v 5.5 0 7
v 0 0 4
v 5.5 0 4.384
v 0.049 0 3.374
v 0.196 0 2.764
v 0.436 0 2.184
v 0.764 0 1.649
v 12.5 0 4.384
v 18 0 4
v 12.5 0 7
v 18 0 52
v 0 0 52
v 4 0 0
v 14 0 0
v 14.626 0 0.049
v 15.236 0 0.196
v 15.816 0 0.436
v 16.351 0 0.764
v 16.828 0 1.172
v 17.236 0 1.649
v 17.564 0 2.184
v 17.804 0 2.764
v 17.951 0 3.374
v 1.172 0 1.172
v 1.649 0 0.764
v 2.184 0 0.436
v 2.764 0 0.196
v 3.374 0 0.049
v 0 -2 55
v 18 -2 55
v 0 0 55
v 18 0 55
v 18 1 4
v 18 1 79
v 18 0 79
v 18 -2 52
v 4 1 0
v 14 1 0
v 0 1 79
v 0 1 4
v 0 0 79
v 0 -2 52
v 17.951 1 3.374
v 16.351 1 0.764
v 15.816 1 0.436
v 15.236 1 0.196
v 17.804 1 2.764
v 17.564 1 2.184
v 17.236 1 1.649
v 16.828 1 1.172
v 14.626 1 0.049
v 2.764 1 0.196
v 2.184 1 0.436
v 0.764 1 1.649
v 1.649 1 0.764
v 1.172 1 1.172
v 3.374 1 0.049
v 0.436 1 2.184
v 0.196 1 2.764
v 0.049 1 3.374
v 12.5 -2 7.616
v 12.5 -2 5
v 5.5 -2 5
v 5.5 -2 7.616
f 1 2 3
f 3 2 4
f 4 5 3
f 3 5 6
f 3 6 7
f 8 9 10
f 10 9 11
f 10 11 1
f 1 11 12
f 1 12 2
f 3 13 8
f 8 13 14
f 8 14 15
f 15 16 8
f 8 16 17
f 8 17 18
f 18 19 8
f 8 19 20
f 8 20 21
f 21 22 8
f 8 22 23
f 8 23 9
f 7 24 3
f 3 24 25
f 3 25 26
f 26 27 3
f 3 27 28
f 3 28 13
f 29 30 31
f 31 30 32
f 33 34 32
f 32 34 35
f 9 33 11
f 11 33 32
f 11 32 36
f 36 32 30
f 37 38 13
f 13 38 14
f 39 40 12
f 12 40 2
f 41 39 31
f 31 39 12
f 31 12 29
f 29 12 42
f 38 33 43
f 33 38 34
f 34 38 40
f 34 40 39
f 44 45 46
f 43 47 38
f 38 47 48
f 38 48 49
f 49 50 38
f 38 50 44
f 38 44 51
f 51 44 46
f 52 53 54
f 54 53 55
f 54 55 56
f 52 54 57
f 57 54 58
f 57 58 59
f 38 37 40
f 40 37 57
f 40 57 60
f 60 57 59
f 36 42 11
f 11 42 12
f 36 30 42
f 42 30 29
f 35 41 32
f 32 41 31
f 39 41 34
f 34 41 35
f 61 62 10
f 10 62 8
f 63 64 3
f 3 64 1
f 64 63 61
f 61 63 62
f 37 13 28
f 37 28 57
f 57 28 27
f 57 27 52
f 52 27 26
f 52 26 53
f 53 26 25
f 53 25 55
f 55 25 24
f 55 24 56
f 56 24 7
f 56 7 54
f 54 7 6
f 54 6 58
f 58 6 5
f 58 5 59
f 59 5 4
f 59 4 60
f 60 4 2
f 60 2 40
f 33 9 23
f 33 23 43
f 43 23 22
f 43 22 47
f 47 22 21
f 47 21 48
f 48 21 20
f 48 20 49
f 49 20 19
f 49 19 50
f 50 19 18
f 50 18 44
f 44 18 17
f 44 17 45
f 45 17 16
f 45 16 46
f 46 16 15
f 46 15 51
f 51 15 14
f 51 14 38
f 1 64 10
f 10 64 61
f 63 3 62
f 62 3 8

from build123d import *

# Parameters (mm, degrees)
SKETCH1_W           = 18
SKETCH1_H           = 55
BOSS_EXTRUDE1_DEPTH = 1
SKETCH2_W           = 18
SKETCH2_H           = 3
BOSS_EXTRUDE2_DEPTH = 2
SKETCH3_W           = 18
SKETCH3_H           = 1
BOSS_EXTRUDE3_DEPTH = 24
SKETCH4_W           = 7
SKETCH4_H           = 2
BOSS_EXTRUDE4_DEPTH = 2
FILLET1_R           = 4
BOSS_EXTRUDE5_DEPTH = 7


with BuildPart() as part:
    # Sketch1 → Boss-Extrude1 (new body)
    with BuildSketch(Plane(origin=(0, 0, 0), x_dir=(1, 0, 0), z_dir=(0, 1, 0))):
        with Locations((9, -27.5)):
            Rectangle(SKETCH1_W, SKETCH1_H)
    extrude(amount=BOSS_EXTRUDE1_DEPTH)

    # Sketch2 → Boss-Extrude2 (add)
    with BuildSketch(Plane.XZ):
        with Locations((9, 53.5)):
            Rectangle(SKETCH2_W, SKETCH2_H)
    extrude(amount=BOSS_EXTRUDE2_DEPTH)

    # Sketch3 → Boss-Extrude3 (add)
    with BuildSketch(Plane.XY.offset(55)):
        with Locations((9, 0.5)):
            Rectangle(SKETCH3_W, SKETCH3_H)
    extrude(amount=BOSS_EXTRUDE3_DEPTH)

    # Sketch4 → Boss-Extrude4 (add)
    with BuildSketch(Plane.XZ):
        with Locations((9, 6)):
            Rectangle(SKETCH4_W, SKETCH4_H)
    extrude(amount=BOSS_EXTRUDE4_DEPTH)

    # Fillet1
    fillet1_edges = [part.edges().sort_by_distance(p)[0] for p in [
        (0, 0.5, 0),
        (18, 0.5, 0),
    ]]
    fillet(fillet1_edges, radius=FILLET1_R)

    # Sketch5 → Boss-Extrude5 (add)
    with BuildSketch(Plane.ZY.offset(-5.5)):
        Polygon((7, 0), (7.615831877, -2), (7, -2), align=None)
        Polygon((5, 0), (5, -2), (4.384168123, 0), align=None)
    extrude(amount=-BOSS_EXTRUDE5_DEPTH)


solid = part.part
